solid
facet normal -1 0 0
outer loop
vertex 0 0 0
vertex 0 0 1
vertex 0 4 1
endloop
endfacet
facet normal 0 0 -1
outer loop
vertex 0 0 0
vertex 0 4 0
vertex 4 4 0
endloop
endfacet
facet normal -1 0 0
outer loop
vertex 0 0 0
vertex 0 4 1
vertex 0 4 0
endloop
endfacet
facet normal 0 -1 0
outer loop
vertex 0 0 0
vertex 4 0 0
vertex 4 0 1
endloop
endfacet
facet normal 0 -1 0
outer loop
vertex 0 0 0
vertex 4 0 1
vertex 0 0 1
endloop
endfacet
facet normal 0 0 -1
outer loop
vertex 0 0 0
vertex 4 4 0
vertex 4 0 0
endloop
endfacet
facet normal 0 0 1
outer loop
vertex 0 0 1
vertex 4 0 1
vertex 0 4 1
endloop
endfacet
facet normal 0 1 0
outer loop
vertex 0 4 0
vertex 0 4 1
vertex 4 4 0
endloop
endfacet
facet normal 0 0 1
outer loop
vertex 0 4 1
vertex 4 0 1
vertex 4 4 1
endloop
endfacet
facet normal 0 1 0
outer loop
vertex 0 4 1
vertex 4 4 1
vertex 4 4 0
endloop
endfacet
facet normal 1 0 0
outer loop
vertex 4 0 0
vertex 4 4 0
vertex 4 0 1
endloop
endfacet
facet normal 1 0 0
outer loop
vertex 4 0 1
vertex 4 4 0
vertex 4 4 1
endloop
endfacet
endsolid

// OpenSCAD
/* Warning, this is a very basic generator with a lot of approximation 
input data : [VQFN, LXC, 4x4x1mm, 24, , A, C04-25396A]
generated by com.zoubworld.electronics.cad.model3d.Basic
Date : Sun Feb 15 10:50:49 CET 2026
*/

//body
color("black")
translate([0,0,0])
cube([4.0,4.0,1.0], center=false);
